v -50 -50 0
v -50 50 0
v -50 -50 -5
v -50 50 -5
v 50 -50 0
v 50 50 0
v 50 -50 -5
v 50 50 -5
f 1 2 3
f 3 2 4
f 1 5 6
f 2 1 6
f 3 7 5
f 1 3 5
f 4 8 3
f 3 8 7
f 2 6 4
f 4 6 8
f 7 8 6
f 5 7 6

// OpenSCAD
w = 100;
d = 100;
th = 5;

translate([-w/2,-d/2,-th]) cube([w,d,th]);
